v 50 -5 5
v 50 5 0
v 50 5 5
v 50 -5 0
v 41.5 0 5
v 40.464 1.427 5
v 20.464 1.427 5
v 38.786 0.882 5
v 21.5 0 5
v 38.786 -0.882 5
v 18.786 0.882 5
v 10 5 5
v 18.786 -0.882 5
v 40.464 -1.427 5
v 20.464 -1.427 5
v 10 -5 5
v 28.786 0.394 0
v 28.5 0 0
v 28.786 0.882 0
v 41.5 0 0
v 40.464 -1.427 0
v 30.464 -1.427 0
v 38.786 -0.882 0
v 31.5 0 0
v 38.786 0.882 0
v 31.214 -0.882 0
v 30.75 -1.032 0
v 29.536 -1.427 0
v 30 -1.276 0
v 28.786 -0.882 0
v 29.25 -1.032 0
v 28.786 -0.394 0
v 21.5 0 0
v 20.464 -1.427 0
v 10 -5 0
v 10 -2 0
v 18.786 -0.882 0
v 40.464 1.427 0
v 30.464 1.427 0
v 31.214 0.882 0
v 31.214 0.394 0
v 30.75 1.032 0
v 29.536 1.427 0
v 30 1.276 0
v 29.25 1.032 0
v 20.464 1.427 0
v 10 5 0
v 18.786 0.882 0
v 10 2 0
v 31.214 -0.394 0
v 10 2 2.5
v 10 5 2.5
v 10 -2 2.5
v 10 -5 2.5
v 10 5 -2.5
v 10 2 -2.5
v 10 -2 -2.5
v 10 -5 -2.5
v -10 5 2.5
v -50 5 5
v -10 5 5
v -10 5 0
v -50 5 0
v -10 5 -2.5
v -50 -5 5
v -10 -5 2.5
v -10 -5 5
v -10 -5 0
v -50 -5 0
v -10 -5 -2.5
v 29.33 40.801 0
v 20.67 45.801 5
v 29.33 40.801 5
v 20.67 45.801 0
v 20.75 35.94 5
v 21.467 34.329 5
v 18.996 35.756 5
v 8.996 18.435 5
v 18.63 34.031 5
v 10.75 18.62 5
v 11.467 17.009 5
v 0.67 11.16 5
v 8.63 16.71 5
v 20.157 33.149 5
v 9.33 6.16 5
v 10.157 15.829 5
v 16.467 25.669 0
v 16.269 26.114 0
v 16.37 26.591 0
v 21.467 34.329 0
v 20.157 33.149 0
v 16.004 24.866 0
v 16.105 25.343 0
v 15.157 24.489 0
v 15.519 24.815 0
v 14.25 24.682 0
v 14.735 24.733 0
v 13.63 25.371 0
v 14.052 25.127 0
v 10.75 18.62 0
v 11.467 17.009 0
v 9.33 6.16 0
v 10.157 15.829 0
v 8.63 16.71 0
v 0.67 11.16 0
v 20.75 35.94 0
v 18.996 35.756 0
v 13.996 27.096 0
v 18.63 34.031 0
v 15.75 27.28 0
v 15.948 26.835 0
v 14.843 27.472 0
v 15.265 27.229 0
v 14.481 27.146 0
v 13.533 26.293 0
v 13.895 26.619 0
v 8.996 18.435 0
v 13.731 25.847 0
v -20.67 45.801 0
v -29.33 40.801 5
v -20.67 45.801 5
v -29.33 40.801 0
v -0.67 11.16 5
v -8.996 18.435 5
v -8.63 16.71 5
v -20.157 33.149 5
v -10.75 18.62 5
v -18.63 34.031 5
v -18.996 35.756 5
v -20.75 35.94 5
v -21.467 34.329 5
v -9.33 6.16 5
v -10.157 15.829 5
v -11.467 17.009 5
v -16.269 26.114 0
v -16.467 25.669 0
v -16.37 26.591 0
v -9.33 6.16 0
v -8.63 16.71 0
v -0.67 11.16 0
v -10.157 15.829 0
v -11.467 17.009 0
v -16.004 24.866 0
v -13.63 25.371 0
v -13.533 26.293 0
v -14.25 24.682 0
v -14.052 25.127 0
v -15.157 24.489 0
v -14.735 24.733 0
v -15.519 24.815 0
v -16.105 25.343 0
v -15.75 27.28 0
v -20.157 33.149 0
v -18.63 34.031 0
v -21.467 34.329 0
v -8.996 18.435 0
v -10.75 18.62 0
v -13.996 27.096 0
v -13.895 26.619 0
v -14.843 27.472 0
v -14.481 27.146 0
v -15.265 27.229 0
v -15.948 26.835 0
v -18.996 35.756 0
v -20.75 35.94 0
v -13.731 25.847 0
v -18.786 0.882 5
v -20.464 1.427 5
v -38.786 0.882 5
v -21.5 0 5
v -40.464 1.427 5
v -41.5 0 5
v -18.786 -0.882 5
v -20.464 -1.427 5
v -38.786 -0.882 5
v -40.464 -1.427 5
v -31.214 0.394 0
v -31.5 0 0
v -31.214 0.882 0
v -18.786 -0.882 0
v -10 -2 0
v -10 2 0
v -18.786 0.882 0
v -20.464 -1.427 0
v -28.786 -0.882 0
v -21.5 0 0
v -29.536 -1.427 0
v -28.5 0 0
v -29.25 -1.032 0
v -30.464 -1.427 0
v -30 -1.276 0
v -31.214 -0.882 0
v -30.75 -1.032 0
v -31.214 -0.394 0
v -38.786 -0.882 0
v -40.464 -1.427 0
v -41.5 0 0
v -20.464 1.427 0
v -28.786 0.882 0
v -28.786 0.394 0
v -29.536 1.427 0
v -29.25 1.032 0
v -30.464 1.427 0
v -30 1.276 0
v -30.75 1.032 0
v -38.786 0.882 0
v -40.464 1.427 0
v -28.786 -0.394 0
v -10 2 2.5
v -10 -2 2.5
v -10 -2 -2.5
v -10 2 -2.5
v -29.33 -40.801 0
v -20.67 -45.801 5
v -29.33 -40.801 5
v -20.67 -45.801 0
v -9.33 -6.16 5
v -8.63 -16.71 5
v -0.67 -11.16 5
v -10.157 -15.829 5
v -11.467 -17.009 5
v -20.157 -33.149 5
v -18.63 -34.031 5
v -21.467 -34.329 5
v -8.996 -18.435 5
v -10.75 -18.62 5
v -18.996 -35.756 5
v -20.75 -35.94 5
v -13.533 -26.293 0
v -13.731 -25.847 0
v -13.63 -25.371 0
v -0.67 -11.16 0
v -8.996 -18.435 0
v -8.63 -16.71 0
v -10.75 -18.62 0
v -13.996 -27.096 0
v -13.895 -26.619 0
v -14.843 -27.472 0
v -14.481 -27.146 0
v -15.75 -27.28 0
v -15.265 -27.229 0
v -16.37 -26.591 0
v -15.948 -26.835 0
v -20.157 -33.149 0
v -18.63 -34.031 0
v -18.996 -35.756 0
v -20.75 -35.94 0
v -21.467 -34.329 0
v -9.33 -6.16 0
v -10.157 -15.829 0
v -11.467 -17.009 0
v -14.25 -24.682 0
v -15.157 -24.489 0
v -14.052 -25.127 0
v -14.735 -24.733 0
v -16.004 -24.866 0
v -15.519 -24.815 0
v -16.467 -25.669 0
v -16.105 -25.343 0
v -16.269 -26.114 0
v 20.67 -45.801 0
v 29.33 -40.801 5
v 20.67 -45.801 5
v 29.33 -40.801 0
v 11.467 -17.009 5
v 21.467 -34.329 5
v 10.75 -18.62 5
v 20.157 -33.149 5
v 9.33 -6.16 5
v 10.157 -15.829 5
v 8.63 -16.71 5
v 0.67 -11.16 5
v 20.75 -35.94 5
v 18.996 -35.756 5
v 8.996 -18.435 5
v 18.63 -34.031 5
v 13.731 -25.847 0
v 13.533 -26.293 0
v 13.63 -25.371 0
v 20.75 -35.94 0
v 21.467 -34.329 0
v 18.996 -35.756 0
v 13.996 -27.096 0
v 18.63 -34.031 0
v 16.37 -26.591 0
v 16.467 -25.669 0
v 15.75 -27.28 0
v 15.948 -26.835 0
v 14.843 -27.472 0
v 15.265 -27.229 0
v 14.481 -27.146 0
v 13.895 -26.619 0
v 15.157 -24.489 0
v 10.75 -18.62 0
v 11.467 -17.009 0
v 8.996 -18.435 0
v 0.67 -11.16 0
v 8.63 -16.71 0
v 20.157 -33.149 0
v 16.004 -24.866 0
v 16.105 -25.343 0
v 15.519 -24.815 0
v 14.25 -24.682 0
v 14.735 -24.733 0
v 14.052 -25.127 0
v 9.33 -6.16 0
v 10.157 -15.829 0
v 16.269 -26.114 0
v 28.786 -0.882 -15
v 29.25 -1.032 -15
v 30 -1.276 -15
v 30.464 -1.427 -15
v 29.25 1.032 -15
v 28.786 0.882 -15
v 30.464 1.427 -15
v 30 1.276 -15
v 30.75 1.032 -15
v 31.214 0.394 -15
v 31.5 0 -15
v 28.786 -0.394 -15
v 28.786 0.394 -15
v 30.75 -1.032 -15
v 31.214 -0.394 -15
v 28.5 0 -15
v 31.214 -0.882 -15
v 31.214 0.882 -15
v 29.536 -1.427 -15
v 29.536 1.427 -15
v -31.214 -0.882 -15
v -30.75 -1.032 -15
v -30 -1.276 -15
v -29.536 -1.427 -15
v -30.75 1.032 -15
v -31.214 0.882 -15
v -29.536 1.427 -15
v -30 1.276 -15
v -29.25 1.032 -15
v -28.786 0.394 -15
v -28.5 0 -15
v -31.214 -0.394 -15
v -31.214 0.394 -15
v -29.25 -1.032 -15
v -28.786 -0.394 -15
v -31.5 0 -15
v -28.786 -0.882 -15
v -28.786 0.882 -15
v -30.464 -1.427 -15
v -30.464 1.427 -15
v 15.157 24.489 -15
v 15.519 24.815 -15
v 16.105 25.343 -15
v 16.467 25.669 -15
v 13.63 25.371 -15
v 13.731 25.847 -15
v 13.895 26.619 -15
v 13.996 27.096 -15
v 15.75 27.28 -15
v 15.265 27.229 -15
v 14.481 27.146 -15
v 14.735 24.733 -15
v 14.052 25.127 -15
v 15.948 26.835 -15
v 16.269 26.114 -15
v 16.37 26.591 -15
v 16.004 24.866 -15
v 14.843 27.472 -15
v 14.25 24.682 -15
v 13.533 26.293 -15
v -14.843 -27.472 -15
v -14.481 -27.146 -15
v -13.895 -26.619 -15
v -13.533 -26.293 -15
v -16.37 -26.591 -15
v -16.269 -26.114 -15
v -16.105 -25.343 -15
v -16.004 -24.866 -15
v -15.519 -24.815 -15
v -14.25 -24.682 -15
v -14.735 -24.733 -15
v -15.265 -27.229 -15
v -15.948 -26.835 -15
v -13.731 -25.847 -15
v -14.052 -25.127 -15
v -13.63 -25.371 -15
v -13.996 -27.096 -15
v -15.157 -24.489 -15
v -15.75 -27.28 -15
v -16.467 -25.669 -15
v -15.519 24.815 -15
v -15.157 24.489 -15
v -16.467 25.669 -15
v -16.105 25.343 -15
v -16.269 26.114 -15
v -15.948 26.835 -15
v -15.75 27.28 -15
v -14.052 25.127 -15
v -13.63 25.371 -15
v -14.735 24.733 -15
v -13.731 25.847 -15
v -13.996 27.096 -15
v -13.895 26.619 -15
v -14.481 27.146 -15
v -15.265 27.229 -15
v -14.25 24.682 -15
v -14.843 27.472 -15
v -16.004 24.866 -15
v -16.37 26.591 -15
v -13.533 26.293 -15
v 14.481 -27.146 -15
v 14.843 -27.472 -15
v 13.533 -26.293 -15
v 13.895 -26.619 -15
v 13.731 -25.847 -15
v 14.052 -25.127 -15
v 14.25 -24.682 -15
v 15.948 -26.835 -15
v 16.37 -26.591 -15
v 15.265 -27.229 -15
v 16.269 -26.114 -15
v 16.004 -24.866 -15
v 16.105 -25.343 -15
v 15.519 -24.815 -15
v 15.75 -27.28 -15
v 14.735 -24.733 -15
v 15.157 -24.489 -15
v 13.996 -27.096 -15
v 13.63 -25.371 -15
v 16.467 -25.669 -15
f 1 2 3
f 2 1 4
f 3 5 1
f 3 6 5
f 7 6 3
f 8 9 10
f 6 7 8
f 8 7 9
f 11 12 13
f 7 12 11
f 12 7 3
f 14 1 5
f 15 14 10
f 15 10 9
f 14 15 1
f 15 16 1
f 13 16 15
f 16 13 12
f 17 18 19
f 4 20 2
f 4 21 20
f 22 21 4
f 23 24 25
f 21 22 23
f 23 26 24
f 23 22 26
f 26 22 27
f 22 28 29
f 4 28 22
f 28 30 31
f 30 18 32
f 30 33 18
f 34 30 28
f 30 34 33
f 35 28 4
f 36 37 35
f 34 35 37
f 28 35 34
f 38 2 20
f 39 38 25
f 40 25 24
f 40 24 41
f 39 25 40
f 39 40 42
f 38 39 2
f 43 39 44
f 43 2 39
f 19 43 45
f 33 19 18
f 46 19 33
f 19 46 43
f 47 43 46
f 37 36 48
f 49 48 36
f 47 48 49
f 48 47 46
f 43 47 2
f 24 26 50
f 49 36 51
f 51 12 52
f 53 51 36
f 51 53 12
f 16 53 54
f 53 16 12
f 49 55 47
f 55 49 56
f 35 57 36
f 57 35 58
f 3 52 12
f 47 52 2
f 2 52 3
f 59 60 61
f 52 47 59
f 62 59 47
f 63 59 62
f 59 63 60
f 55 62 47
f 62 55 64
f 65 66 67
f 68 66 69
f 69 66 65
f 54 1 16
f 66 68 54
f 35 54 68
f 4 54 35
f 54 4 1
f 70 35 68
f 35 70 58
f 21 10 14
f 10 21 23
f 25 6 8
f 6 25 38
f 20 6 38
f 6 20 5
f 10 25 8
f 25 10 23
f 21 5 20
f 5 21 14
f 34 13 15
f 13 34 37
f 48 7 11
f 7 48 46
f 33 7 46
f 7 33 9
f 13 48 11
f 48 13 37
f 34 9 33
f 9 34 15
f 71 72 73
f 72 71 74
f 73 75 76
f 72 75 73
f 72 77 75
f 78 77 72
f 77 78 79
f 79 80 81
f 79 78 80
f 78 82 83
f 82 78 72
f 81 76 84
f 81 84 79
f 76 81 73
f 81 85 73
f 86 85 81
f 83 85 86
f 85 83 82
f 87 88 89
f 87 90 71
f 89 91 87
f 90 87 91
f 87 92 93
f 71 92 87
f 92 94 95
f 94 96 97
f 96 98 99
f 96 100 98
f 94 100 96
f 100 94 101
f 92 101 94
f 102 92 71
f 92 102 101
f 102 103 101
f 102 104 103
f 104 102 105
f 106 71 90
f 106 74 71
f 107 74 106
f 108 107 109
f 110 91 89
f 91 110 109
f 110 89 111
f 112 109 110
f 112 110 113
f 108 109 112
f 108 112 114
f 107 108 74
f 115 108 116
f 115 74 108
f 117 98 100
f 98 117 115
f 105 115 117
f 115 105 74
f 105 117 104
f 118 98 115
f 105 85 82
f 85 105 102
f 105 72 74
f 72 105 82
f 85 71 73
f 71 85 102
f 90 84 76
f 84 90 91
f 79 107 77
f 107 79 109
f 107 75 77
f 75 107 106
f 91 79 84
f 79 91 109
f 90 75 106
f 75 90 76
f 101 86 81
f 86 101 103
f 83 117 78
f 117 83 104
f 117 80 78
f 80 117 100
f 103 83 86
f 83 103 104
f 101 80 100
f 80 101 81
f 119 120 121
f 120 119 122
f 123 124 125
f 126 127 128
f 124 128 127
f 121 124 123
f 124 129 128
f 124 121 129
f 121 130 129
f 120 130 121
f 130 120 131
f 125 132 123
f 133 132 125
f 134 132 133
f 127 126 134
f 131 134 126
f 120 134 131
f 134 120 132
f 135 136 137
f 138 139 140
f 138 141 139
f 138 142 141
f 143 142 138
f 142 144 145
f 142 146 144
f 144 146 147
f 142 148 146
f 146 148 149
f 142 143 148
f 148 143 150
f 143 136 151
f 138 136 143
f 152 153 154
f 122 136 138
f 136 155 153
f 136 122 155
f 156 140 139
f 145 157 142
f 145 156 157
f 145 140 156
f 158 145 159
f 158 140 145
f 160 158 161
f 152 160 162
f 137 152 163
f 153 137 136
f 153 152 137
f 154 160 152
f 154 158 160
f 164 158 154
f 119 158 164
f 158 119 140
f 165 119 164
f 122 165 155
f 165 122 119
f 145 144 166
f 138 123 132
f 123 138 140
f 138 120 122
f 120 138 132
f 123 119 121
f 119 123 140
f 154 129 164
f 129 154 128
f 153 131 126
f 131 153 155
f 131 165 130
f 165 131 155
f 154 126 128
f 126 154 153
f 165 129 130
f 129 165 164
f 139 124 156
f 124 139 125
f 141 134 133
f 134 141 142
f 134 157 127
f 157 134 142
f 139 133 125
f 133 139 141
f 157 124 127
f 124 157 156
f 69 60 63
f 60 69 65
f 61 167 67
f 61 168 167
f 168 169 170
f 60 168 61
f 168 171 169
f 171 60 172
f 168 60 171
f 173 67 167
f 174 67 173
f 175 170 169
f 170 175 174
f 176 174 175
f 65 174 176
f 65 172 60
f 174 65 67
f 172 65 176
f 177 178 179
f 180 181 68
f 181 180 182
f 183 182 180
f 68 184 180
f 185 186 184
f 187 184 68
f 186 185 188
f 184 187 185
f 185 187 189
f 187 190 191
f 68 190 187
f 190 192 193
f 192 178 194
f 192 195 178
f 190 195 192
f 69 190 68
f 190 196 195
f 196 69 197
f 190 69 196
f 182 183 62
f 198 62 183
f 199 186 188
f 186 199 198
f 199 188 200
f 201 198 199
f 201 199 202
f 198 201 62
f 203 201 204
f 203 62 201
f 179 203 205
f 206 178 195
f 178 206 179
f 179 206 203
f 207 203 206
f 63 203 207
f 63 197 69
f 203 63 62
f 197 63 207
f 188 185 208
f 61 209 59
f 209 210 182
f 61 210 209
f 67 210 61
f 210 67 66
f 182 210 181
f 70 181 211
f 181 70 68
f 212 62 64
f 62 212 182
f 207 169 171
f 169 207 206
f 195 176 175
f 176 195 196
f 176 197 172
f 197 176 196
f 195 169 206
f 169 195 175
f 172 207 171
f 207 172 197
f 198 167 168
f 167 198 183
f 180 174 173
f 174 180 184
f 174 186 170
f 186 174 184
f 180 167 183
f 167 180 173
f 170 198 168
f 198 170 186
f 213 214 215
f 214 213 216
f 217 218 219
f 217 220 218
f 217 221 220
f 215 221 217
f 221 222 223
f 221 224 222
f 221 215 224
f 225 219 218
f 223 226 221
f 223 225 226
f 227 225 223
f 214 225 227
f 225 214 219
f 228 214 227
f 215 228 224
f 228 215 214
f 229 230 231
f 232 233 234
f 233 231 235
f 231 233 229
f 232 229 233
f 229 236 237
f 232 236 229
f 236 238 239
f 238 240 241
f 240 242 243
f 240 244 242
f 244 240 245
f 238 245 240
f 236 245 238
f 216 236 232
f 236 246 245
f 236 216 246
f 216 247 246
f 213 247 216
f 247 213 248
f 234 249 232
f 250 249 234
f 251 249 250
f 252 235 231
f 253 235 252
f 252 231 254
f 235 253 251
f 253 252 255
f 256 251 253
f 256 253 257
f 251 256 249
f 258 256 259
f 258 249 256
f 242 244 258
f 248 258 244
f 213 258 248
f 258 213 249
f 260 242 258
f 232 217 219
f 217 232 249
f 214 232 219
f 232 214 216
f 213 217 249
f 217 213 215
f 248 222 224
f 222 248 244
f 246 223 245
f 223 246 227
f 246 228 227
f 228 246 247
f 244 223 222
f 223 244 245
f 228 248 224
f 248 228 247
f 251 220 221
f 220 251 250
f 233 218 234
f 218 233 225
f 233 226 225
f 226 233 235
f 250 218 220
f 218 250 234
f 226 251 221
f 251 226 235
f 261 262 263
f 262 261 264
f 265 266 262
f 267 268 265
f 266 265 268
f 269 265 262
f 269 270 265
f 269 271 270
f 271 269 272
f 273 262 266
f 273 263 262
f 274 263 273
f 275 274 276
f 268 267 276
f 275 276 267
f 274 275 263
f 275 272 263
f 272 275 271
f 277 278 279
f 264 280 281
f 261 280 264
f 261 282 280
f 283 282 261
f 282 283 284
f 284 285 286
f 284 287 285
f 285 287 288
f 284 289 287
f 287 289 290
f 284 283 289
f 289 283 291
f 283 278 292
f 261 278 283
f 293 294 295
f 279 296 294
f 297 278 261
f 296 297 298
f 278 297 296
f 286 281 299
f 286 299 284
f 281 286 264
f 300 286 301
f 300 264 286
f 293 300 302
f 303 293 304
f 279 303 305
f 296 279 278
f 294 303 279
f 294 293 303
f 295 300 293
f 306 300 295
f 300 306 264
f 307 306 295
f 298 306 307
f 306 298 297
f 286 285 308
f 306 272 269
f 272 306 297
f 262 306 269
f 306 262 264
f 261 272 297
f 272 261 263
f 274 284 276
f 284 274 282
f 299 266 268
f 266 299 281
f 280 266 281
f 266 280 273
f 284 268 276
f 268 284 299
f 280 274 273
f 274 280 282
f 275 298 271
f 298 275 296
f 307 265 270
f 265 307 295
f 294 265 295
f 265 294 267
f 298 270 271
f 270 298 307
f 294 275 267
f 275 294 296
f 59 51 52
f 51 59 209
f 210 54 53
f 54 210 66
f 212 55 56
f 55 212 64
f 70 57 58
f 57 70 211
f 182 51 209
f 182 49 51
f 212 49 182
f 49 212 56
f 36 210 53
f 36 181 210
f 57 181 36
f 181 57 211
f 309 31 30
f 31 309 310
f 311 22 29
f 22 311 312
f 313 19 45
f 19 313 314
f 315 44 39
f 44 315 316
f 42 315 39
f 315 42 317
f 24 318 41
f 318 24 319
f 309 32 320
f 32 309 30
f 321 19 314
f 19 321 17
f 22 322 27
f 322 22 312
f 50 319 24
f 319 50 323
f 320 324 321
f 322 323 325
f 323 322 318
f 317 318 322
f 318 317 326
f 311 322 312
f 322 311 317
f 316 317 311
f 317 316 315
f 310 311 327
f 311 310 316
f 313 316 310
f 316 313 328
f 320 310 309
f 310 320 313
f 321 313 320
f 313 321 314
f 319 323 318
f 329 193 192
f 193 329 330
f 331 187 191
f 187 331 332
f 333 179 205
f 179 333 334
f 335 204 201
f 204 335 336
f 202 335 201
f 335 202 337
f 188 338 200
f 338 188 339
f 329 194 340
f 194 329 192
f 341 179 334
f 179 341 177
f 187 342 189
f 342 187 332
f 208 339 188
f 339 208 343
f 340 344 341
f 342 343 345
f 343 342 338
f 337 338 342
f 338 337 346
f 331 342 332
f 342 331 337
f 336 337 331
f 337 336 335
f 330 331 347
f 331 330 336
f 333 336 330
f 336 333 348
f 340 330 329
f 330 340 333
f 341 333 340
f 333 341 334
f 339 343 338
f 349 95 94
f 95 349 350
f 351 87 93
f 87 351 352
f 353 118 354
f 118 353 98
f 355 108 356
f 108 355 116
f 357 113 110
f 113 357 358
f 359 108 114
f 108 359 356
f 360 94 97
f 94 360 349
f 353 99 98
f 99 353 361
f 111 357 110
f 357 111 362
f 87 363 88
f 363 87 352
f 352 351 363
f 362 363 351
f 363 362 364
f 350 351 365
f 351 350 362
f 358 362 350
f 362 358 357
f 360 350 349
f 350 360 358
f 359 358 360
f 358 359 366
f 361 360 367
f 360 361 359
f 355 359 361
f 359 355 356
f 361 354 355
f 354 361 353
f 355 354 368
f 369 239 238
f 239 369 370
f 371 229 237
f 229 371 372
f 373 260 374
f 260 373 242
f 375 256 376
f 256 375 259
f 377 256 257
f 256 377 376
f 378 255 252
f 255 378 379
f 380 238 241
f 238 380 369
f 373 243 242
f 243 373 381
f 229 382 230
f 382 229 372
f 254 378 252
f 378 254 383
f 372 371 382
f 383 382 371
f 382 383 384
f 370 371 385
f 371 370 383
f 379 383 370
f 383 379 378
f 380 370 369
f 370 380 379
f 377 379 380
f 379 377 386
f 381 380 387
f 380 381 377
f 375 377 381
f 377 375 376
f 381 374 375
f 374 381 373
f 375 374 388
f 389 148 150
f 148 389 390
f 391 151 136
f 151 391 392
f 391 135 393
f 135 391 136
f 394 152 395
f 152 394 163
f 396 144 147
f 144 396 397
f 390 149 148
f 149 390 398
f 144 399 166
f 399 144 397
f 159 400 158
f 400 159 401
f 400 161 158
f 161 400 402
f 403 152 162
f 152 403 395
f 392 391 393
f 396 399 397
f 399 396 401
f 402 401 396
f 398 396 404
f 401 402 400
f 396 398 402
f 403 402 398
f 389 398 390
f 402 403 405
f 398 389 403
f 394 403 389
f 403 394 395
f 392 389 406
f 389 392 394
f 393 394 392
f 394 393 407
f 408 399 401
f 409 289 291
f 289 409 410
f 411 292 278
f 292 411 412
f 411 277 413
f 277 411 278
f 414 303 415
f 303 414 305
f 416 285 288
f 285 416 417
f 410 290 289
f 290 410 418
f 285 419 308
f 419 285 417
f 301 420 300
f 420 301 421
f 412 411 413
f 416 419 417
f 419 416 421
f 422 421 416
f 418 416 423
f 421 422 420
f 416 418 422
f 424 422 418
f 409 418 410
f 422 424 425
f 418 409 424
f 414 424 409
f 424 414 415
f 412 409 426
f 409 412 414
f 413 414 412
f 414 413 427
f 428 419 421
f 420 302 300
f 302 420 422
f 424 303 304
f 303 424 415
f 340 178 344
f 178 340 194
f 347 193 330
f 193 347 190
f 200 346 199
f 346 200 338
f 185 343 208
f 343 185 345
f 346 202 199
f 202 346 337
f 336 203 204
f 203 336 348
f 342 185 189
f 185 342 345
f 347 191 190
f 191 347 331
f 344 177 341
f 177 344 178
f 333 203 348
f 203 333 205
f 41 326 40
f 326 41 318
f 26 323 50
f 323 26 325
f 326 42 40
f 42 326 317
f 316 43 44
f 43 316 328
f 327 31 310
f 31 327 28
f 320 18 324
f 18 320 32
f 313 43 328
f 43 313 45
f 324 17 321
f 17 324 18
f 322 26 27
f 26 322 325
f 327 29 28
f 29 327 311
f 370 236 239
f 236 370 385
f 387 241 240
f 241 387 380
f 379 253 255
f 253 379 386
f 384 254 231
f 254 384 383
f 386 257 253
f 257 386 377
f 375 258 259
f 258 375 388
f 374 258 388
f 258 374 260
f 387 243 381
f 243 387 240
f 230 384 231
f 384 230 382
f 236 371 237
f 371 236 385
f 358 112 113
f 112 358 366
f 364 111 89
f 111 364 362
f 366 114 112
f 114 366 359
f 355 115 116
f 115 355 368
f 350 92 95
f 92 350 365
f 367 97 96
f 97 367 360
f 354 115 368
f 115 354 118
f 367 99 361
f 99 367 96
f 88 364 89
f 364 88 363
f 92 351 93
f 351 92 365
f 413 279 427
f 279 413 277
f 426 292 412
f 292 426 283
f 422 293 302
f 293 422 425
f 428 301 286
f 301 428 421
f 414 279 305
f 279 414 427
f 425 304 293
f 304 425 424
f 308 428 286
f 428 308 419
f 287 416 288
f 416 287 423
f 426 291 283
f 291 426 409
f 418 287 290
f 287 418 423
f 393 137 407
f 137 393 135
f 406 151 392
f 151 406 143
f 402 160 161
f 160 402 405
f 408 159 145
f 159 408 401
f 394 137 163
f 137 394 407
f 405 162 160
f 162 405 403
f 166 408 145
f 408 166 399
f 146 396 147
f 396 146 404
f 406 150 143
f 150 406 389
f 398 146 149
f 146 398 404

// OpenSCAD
// Parameters
bracket_thickness = 5;
bracket_hole_diameter = 3;
bracket_long_arm_length = 40;
bracket_short_arm_length = 20;
bracket_width = 10;

spacer_length = 20;
spacer_width = 10;
spacer_thickness = 5;
spacer_slot_width = 4;

fastener_diameter = 3;
fastener_length = 15;

// Bracket module
module bracket() {
    difference() {
        union() {
            // Long arm
            cube([bracket_long_arm_length, bracket_width, bracket_thickness], center = true);
            // Short arm
            translate([-(bracket_long_arm_length / 2 - bracket_short_arm_length / 2), 0, 0])
                cube([bracket_short_arm_length, bracket_width, bracket_thickness], center = true);
        }
        // Holes
        translate([bracket_long_arm_length / 4, 0, 0])
            cylinder(h = bracket_thickness + 1, d = bracket_hole_diameter, center = true);
        translate([-bracket_long_arm_length / 4, 0, 0])
            cylinder(h = bracket_thickness + 1, d = bracket_hole_diameter, center = true);
        translate([-(bracket_long_arm_length / 2 - bracket_short_arm_length / 2), 0, 0])
            cylinder(h = bracket_thickness + 1, d = bracket_hole_diameter, center = true);
    }
}

// Spacer module
module spacer() {
    difference() {
        cube([spacer_length, spacer_width, spacer_thickness], center = true);
        translate([0, 0, 0])
            cube([spacer_length, spacer_slot_width, spacer_thickness + 1], center = true);
    }
}

// Fastener module
module fastener() {
    cylinder(h = fastener_length, d = fastener_diameter, center = true);
}

// Assembly
module assembly() {
    // Layer 1: Brackets
    for (i = [0:5]) {
        rotate([0, 0, i * 60])
            translate([30, 0, bracket_thickness / 2])
                bracket();
    }

    // Layer 2: Spacer
    spacer();

    // Layer 3: Fasteners
    for (i = [0:5]) {
        rotate([0, 0, i * 60])
            translate([30, 0, -fastener_length / 2])
                fastener();
        rotate([0, 0, i * 60])
            translate([-30, 0, -fastener_length / 2])
                fastener();
    }
}

// Render the assembly
assembly();
